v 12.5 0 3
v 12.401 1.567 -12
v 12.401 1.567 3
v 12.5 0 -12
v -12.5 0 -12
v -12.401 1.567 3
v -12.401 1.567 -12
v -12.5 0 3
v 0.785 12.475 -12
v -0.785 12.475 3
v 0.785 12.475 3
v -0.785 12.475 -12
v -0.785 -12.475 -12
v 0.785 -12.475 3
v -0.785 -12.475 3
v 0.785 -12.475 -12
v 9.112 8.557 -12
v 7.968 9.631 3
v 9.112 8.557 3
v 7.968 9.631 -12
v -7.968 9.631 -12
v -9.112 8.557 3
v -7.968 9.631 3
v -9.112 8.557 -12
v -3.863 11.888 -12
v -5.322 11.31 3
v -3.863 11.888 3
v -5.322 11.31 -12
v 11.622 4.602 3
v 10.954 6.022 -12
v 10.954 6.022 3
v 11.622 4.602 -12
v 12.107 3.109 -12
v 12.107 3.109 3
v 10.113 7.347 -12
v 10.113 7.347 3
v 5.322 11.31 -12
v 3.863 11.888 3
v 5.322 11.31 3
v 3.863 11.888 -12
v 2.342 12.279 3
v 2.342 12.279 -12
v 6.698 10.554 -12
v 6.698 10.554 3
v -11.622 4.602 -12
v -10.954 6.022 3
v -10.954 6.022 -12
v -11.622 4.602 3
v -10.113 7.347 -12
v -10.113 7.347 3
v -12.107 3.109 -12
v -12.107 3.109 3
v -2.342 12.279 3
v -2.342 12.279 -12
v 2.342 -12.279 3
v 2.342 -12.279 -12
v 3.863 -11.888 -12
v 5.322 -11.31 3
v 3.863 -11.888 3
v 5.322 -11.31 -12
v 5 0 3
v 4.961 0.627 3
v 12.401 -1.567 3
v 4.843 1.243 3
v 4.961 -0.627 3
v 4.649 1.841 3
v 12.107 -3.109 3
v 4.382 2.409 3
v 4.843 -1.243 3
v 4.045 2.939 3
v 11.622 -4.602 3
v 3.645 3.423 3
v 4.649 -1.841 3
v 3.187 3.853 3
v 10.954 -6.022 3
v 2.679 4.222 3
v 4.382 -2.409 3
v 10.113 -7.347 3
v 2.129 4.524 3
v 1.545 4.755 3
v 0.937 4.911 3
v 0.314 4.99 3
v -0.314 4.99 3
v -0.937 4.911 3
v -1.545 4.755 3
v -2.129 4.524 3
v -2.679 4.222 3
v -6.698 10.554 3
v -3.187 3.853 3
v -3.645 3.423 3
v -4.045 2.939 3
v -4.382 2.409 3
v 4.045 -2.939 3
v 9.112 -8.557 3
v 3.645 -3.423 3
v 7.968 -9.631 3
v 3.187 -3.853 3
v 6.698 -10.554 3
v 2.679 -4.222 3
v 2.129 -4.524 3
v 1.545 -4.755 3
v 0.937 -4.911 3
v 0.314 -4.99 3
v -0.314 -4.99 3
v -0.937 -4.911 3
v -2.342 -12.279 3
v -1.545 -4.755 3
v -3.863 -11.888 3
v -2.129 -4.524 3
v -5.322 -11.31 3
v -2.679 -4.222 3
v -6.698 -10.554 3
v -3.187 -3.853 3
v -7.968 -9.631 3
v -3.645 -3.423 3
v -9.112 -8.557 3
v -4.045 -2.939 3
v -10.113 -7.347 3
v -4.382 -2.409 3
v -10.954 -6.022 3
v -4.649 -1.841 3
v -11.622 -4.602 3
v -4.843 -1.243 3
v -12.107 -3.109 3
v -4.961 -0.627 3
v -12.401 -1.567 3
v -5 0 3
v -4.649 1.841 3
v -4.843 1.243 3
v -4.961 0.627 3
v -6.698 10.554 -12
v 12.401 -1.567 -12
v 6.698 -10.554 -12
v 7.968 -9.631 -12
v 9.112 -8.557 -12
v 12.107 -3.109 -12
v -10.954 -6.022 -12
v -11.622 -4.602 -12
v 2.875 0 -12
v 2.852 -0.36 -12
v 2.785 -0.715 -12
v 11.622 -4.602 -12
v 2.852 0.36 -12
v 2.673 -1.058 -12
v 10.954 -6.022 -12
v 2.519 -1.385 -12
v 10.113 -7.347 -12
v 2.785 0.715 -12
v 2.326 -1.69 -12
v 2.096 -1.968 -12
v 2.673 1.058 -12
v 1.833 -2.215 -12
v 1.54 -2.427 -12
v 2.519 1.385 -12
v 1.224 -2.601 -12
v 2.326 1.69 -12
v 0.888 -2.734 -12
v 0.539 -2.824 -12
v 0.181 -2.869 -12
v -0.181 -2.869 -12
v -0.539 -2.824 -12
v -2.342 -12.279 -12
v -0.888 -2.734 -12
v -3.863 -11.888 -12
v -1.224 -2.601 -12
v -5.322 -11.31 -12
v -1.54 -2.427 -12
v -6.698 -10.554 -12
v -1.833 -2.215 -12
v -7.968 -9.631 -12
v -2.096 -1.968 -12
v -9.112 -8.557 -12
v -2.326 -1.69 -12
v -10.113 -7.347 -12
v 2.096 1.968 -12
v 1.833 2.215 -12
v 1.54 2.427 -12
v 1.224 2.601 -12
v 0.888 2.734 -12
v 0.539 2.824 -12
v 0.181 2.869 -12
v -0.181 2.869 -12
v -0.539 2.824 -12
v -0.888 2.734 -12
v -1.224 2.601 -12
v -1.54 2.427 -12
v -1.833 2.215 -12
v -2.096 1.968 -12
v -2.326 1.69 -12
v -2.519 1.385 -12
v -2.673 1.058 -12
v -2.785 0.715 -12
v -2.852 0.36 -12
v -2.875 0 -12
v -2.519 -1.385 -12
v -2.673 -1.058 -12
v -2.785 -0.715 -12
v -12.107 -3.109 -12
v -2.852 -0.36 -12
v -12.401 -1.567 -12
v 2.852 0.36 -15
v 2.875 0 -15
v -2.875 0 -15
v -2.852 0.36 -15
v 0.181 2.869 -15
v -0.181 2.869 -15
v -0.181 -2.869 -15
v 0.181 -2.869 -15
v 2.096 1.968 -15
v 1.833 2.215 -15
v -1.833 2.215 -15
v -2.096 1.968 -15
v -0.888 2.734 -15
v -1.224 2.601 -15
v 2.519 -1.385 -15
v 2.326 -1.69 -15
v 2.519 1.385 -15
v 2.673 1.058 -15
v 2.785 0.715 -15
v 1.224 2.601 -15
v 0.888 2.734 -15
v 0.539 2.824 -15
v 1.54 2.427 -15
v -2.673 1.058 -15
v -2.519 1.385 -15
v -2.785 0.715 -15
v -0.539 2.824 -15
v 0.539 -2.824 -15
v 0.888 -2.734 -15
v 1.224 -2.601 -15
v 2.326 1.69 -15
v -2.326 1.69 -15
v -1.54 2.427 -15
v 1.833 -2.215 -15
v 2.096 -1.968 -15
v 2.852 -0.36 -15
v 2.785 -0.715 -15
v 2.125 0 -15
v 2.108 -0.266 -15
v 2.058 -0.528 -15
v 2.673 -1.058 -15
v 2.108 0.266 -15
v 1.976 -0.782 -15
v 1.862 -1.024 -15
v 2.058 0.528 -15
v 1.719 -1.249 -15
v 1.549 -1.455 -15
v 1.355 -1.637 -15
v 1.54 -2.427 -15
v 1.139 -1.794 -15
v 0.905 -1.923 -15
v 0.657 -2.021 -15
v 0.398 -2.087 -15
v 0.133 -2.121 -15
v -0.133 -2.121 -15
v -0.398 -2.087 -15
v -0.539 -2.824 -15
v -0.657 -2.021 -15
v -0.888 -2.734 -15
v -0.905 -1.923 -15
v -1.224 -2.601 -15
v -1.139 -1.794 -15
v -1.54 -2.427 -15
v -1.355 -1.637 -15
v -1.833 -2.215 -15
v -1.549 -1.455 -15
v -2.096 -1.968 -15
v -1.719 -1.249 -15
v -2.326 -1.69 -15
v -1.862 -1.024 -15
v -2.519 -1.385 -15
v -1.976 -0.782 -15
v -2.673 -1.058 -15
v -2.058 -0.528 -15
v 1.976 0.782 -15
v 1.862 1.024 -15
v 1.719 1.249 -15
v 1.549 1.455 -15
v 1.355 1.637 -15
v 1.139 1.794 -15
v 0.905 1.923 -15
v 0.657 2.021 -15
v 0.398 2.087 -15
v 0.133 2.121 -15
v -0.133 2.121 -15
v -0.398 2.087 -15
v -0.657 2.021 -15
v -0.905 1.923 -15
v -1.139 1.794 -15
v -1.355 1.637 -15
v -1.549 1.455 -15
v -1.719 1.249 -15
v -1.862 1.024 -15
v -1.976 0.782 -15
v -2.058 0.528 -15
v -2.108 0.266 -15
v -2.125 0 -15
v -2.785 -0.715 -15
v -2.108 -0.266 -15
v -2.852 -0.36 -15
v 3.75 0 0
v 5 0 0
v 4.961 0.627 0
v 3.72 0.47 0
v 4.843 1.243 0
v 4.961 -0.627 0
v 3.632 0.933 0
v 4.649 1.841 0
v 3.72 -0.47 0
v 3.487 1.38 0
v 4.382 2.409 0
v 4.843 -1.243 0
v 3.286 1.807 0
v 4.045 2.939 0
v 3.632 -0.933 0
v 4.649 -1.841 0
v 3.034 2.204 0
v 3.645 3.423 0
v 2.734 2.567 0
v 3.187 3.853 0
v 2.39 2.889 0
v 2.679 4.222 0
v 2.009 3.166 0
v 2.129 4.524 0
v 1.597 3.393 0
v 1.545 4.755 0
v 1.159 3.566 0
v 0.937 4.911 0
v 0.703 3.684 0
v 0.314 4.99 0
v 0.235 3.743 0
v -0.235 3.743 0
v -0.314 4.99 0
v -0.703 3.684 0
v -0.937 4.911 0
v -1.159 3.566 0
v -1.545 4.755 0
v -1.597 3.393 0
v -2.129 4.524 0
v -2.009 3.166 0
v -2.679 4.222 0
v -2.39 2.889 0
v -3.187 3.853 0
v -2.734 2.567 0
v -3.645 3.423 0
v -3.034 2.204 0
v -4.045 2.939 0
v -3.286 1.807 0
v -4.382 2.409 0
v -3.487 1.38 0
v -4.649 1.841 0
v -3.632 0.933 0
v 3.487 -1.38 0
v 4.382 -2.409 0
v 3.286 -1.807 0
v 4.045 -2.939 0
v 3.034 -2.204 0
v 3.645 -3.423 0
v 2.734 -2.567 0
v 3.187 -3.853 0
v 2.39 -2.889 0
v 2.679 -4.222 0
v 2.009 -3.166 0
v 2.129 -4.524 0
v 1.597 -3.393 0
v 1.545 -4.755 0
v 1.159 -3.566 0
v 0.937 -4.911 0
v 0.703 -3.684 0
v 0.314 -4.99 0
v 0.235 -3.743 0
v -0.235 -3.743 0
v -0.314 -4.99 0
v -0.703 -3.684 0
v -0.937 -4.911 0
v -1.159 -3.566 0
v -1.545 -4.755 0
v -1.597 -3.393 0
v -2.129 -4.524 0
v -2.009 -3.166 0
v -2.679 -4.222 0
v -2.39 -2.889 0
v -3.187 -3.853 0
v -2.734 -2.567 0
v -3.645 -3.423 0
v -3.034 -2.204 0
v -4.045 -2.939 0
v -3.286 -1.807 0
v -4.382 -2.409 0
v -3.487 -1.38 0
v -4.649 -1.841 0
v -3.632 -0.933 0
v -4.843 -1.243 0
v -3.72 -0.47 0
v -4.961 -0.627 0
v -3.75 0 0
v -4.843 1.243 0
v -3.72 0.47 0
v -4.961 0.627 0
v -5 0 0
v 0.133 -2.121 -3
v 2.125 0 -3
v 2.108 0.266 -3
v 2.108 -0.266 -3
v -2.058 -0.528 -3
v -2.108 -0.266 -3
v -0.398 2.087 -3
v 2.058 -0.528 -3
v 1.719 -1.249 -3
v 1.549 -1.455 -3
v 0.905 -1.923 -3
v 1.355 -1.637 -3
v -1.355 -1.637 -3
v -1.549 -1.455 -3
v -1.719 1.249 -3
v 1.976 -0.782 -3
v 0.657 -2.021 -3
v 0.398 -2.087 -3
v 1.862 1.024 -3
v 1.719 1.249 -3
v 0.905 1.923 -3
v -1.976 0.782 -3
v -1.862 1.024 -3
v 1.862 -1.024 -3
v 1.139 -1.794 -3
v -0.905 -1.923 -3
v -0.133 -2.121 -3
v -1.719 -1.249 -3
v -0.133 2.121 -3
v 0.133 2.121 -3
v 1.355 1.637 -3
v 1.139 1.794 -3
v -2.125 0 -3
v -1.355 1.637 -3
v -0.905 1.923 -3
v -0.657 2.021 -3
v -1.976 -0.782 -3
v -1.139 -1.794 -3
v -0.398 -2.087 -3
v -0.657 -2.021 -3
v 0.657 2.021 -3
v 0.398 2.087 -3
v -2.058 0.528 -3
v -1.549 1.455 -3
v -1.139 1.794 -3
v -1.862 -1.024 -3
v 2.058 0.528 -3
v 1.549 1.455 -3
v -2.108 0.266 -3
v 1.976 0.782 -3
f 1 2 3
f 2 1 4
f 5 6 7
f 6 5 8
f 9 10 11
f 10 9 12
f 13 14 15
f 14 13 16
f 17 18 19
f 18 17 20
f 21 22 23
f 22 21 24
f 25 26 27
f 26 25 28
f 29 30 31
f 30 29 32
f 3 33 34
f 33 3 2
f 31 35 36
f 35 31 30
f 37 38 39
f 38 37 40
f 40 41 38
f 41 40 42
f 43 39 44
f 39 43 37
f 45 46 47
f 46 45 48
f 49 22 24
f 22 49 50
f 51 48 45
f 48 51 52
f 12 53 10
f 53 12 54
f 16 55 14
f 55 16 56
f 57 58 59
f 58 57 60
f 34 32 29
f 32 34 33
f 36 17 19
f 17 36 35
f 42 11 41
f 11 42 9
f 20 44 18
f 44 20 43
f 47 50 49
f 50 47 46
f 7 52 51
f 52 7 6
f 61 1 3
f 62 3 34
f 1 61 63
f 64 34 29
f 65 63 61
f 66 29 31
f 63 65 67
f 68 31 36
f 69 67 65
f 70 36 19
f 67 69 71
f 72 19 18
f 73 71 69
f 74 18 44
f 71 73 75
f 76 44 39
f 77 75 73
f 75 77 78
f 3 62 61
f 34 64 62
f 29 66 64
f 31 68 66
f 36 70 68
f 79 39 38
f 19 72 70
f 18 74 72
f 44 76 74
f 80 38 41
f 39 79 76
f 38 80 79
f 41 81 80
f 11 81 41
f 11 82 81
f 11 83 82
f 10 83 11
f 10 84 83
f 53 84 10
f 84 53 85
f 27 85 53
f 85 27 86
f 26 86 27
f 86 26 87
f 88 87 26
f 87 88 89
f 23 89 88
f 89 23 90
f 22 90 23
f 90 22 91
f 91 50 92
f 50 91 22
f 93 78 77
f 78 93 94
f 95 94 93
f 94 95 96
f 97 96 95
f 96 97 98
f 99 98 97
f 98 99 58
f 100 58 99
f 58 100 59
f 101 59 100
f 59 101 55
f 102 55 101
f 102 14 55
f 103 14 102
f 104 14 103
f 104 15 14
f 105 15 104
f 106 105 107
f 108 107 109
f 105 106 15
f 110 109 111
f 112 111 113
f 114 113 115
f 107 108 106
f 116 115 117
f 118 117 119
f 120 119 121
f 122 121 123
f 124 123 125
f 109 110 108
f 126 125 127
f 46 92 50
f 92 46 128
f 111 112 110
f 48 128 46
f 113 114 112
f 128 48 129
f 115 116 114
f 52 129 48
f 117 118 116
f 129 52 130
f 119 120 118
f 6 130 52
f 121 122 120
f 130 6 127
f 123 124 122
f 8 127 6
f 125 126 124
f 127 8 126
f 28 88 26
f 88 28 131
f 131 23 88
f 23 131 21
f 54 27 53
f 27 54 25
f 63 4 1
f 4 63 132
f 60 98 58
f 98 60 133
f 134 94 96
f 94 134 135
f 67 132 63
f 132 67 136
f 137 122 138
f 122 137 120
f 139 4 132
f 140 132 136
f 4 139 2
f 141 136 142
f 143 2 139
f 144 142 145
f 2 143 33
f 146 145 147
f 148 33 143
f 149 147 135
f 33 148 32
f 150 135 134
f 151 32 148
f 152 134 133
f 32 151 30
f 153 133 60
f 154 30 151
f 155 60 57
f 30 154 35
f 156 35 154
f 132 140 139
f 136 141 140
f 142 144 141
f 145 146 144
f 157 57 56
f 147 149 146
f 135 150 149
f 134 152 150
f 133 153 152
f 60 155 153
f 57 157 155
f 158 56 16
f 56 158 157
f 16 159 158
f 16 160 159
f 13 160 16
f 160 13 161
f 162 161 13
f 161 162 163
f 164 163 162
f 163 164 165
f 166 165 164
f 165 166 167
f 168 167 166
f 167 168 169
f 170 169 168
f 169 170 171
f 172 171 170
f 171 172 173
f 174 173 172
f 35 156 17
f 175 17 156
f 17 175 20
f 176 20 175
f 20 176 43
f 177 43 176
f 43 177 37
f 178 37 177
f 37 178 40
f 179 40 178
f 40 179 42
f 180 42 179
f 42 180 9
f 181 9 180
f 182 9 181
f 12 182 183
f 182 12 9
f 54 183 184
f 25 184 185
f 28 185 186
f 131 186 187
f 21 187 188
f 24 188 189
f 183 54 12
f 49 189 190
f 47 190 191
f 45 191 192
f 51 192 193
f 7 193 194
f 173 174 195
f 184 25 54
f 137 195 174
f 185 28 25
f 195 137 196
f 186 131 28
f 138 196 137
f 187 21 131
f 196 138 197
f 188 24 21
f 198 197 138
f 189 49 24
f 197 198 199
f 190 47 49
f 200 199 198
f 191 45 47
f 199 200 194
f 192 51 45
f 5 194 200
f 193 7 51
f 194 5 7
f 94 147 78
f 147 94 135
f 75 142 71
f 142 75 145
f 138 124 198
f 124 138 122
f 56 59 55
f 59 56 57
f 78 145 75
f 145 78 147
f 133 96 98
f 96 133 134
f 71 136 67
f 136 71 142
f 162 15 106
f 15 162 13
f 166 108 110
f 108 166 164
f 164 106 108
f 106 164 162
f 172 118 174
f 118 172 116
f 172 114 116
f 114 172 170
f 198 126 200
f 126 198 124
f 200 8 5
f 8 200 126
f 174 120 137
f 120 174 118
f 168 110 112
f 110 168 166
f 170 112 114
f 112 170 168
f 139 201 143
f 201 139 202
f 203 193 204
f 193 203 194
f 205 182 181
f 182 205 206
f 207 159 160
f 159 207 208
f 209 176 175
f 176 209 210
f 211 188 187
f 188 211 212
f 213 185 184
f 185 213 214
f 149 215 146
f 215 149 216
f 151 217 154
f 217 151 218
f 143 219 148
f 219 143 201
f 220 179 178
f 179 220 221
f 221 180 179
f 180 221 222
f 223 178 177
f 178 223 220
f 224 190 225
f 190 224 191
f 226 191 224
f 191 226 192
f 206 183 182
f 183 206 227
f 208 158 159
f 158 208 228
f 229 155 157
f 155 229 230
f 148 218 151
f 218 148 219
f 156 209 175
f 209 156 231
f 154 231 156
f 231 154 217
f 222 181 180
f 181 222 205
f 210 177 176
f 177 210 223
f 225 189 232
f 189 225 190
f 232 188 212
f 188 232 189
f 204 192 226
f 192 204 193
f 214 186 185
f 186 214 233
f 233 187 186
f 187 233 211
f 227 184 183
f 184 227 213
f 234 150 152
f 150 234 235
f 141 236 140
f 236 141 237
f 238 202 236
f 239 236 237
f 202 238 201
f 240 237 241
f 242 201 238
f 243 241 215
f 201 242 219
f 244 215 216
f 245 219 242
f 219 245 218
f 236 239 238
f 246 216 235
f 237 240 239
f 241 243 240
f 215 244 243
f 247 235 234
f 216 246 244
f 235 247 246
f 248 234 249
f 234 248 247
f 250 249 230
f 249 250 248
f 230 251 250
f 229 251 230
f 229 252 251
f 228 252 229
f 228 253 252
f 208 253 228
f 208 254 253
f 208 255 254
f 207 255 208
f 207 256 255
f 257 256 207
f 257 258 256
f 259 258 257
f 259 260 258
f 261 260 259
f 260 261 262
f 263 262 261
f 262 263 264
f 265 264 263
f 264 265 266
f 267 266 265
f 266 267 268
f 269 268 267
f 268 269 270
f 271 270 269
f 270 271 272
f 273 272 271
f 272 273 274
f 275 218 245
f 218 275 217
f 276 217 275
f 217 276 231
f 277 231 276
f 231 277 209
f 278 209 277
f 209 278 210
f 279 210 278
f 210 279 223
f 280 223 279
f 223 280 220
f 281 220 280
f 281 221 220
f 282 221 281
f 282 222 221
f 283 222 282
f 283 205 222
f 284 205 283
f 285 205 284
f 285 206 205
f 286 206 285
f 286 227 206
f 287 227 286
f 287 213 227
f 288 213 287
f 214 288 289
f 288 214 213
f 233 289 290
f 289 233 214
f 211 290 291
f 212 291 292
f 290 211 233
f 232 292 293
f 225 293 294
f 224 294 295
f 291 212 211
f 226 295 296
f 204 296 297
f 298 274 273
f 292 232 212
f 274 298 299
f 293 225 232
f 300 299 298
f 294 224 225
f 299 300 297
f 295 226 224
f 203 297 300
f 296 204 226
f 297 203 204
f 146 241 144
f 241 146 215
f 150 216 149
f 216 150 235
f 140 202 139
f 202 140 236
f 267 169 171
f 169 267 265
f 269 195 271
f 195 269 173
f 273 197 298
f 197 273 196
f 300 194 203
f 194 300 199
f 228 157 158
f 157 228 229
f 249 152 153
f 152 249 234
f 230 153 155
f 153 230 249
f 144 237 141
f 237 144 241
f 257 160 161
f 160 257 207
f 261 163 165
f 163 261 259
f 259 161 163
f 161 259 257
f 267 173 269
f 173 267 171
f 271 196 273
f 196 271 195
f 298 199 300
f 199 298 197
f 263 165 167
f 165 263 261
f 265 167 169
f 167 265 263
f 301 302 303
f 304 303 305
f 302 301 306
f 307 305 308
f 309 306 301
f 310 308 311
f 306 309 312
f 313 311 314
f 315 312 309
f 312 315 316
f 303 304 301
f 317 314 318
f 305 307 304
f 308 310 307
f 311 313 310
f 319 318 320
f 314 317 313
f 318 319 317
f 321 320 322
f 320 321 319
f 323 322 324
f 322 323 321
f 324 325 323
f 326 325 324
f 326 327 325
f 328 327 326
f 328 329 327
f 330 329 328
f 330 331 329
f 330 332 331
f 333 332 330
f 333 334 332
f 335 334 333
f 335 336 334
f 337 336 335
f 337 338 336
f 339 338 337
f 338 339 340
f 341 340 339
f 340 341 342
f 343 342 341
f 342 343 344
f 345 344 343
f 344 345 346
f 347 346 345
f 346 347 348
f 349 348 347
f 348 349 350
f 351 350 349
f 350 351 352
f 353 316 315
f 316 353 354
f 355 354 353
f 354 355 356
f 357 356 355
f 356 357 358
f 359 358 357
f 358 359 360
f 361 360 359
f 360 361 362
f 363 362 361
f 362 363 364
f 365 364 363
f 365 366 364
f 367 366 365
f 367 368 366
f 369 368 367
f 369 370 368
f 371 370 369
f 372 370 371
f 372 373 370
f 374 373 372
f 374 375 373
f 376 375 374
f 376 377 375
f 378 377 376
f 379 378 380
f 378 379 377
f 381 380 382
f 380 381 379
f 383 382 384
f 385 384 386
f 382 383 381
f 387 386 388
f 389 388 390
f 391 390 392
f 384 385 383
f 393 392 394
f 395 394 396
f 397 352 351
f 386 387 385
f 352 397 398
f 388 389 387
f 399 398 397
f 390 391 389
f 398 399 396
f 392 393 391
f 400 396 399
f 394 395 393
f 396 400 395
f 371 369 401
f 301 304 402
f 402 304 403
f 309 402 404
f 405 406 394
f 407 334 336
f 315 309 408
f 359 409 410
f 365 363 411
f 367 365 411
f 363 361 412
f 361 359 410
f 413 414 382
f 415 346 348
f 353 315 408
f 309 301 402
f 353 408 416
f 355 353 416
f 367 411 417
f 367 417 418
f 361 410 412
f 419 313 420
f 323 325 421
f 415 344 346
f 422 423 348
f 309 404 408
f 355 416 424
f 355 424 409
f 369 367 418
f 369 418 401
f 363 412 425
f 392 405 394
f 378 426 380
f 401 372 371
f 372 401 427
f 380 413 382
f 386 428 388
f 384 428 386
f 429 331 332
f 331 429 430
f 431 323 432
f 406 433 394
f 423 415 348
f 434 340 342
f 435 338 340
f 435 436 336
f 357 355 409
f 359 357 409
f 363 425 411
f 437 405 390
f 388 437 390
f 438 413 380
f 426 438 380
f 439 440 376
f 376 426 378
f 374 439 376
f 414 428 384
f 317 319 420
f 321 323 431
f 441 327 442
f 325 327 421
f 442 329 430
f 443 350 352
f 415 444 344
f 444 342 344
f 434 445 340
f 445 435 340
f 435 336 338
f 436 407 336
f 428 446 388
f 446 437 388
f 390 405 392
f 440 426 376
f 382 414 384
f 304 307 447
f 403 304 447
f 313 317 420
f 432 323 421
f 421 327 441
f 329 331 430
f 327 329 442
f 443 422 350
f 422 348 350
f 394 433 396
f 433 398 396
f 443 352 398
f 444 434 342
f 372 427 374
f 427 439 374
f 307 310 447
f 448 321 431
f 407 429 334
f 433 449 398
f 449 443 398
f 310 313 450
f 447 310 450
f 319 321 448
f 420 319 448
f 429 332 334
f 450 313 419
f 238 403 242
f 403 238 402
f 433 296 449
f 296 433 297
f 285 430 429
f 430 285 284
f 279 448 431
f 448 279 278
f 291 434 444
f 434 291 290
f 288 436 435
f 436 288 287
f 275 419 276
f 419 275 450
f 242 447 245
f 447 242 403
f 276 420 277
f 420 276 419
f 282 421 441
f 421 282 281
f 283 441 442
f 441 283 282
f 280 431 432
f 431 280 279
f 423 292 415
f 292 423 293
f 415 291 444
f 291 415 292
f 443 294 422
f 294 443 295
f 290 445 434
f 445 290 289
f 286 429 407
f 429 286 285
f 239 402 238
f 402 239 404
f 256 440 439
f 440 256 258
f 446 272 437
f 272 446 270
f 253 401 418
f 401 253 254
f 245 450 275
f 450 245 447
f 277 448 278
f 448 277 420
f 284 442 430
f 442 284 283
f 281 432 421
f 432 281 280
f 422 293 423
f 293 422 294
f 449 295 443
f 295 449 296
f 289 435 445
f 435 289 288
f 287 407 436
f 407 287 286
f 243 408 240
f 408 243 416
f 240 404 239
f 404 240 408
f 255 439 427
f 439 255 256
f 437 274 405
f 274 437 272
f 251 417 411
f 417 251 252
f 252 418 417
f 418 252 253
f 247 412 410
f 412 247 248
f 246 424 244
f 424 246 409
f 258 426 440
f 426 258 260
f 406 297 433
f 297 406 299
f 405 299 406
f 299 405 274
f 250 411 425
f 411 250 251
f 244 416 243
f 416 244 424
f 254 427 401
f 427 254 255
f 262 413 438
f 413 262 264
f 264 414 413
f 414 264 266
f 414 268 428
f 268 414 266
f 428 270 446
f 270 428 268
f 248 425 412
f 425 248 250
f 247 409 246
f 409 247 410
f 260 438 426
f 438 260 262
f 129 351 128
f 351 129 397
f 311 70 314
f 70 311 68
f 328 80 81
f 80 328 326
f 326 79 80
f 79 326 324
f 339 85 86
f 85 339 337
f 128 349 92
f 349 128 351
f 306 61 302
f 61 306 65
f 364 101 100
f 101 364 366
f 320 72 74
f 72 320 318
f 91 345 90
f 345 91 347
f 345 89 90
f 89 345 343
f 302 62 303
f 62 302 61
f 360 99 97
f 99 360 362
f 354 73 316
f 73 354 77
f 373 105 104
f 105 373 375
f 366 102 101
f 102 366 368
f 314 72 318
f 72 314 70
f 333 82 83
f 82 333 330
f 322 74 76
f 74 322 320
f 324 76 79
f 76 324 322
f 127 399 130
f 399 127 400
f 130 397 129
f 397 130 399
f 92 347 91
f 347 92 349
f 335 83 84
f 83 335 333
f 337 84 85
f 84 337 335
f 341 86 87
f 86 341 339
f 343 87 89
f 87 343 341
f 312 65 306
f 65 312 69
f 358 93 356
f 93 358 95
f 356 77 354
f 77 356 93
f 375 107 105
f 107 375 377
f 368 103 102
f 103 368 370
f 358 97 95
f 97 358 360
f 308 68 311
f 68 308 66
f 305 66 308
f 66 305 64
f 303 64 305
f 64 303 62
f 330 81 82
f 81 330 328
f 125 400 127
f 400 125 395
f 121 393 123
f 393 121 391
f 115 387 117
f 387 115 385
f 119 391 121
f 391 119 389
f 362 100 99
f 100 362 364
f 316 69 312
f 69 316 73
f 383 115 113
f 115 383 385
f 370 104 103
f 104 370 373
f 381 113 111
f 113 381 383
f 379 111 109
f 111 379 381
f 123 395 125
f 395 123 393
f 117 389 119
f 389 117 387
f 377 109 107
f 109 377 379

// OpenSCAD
$fn = 50;

difference() {
	union() {
		translate(v = [0, 0, -12.0]) {
			cylinder(h = 15, r = 12.5);
		}
		#translate(v = [0, 0, -15.0]) {
			cylinder(h = 15, r = 2.875);
		}
	}
	union() {
		translate(v = [0, 0, 0]) {
			rotate(a = [0, 0, 0]) {
				difference() {
					union() {
						translate(v = [0, 0, -15.0]) {
							cylinder(h = 15, r = 2.0);
						}
						translate(v = [0, 0, -3]) {
							cylinder(h = 3, r1 = 2.125, r2 = 3.75);
						}
						translate(v = [0, 0, -15.0]) {
							cylinder(h = 15, r = 2.125);
						}
						translate(v = [0, 0, -15.0]) {
							cylinder(h = 15, r = 2.0);
						}
					}
					union();
				}
			}
		}
		#cylinder(h = 3, r = 5.0);
	}
}
